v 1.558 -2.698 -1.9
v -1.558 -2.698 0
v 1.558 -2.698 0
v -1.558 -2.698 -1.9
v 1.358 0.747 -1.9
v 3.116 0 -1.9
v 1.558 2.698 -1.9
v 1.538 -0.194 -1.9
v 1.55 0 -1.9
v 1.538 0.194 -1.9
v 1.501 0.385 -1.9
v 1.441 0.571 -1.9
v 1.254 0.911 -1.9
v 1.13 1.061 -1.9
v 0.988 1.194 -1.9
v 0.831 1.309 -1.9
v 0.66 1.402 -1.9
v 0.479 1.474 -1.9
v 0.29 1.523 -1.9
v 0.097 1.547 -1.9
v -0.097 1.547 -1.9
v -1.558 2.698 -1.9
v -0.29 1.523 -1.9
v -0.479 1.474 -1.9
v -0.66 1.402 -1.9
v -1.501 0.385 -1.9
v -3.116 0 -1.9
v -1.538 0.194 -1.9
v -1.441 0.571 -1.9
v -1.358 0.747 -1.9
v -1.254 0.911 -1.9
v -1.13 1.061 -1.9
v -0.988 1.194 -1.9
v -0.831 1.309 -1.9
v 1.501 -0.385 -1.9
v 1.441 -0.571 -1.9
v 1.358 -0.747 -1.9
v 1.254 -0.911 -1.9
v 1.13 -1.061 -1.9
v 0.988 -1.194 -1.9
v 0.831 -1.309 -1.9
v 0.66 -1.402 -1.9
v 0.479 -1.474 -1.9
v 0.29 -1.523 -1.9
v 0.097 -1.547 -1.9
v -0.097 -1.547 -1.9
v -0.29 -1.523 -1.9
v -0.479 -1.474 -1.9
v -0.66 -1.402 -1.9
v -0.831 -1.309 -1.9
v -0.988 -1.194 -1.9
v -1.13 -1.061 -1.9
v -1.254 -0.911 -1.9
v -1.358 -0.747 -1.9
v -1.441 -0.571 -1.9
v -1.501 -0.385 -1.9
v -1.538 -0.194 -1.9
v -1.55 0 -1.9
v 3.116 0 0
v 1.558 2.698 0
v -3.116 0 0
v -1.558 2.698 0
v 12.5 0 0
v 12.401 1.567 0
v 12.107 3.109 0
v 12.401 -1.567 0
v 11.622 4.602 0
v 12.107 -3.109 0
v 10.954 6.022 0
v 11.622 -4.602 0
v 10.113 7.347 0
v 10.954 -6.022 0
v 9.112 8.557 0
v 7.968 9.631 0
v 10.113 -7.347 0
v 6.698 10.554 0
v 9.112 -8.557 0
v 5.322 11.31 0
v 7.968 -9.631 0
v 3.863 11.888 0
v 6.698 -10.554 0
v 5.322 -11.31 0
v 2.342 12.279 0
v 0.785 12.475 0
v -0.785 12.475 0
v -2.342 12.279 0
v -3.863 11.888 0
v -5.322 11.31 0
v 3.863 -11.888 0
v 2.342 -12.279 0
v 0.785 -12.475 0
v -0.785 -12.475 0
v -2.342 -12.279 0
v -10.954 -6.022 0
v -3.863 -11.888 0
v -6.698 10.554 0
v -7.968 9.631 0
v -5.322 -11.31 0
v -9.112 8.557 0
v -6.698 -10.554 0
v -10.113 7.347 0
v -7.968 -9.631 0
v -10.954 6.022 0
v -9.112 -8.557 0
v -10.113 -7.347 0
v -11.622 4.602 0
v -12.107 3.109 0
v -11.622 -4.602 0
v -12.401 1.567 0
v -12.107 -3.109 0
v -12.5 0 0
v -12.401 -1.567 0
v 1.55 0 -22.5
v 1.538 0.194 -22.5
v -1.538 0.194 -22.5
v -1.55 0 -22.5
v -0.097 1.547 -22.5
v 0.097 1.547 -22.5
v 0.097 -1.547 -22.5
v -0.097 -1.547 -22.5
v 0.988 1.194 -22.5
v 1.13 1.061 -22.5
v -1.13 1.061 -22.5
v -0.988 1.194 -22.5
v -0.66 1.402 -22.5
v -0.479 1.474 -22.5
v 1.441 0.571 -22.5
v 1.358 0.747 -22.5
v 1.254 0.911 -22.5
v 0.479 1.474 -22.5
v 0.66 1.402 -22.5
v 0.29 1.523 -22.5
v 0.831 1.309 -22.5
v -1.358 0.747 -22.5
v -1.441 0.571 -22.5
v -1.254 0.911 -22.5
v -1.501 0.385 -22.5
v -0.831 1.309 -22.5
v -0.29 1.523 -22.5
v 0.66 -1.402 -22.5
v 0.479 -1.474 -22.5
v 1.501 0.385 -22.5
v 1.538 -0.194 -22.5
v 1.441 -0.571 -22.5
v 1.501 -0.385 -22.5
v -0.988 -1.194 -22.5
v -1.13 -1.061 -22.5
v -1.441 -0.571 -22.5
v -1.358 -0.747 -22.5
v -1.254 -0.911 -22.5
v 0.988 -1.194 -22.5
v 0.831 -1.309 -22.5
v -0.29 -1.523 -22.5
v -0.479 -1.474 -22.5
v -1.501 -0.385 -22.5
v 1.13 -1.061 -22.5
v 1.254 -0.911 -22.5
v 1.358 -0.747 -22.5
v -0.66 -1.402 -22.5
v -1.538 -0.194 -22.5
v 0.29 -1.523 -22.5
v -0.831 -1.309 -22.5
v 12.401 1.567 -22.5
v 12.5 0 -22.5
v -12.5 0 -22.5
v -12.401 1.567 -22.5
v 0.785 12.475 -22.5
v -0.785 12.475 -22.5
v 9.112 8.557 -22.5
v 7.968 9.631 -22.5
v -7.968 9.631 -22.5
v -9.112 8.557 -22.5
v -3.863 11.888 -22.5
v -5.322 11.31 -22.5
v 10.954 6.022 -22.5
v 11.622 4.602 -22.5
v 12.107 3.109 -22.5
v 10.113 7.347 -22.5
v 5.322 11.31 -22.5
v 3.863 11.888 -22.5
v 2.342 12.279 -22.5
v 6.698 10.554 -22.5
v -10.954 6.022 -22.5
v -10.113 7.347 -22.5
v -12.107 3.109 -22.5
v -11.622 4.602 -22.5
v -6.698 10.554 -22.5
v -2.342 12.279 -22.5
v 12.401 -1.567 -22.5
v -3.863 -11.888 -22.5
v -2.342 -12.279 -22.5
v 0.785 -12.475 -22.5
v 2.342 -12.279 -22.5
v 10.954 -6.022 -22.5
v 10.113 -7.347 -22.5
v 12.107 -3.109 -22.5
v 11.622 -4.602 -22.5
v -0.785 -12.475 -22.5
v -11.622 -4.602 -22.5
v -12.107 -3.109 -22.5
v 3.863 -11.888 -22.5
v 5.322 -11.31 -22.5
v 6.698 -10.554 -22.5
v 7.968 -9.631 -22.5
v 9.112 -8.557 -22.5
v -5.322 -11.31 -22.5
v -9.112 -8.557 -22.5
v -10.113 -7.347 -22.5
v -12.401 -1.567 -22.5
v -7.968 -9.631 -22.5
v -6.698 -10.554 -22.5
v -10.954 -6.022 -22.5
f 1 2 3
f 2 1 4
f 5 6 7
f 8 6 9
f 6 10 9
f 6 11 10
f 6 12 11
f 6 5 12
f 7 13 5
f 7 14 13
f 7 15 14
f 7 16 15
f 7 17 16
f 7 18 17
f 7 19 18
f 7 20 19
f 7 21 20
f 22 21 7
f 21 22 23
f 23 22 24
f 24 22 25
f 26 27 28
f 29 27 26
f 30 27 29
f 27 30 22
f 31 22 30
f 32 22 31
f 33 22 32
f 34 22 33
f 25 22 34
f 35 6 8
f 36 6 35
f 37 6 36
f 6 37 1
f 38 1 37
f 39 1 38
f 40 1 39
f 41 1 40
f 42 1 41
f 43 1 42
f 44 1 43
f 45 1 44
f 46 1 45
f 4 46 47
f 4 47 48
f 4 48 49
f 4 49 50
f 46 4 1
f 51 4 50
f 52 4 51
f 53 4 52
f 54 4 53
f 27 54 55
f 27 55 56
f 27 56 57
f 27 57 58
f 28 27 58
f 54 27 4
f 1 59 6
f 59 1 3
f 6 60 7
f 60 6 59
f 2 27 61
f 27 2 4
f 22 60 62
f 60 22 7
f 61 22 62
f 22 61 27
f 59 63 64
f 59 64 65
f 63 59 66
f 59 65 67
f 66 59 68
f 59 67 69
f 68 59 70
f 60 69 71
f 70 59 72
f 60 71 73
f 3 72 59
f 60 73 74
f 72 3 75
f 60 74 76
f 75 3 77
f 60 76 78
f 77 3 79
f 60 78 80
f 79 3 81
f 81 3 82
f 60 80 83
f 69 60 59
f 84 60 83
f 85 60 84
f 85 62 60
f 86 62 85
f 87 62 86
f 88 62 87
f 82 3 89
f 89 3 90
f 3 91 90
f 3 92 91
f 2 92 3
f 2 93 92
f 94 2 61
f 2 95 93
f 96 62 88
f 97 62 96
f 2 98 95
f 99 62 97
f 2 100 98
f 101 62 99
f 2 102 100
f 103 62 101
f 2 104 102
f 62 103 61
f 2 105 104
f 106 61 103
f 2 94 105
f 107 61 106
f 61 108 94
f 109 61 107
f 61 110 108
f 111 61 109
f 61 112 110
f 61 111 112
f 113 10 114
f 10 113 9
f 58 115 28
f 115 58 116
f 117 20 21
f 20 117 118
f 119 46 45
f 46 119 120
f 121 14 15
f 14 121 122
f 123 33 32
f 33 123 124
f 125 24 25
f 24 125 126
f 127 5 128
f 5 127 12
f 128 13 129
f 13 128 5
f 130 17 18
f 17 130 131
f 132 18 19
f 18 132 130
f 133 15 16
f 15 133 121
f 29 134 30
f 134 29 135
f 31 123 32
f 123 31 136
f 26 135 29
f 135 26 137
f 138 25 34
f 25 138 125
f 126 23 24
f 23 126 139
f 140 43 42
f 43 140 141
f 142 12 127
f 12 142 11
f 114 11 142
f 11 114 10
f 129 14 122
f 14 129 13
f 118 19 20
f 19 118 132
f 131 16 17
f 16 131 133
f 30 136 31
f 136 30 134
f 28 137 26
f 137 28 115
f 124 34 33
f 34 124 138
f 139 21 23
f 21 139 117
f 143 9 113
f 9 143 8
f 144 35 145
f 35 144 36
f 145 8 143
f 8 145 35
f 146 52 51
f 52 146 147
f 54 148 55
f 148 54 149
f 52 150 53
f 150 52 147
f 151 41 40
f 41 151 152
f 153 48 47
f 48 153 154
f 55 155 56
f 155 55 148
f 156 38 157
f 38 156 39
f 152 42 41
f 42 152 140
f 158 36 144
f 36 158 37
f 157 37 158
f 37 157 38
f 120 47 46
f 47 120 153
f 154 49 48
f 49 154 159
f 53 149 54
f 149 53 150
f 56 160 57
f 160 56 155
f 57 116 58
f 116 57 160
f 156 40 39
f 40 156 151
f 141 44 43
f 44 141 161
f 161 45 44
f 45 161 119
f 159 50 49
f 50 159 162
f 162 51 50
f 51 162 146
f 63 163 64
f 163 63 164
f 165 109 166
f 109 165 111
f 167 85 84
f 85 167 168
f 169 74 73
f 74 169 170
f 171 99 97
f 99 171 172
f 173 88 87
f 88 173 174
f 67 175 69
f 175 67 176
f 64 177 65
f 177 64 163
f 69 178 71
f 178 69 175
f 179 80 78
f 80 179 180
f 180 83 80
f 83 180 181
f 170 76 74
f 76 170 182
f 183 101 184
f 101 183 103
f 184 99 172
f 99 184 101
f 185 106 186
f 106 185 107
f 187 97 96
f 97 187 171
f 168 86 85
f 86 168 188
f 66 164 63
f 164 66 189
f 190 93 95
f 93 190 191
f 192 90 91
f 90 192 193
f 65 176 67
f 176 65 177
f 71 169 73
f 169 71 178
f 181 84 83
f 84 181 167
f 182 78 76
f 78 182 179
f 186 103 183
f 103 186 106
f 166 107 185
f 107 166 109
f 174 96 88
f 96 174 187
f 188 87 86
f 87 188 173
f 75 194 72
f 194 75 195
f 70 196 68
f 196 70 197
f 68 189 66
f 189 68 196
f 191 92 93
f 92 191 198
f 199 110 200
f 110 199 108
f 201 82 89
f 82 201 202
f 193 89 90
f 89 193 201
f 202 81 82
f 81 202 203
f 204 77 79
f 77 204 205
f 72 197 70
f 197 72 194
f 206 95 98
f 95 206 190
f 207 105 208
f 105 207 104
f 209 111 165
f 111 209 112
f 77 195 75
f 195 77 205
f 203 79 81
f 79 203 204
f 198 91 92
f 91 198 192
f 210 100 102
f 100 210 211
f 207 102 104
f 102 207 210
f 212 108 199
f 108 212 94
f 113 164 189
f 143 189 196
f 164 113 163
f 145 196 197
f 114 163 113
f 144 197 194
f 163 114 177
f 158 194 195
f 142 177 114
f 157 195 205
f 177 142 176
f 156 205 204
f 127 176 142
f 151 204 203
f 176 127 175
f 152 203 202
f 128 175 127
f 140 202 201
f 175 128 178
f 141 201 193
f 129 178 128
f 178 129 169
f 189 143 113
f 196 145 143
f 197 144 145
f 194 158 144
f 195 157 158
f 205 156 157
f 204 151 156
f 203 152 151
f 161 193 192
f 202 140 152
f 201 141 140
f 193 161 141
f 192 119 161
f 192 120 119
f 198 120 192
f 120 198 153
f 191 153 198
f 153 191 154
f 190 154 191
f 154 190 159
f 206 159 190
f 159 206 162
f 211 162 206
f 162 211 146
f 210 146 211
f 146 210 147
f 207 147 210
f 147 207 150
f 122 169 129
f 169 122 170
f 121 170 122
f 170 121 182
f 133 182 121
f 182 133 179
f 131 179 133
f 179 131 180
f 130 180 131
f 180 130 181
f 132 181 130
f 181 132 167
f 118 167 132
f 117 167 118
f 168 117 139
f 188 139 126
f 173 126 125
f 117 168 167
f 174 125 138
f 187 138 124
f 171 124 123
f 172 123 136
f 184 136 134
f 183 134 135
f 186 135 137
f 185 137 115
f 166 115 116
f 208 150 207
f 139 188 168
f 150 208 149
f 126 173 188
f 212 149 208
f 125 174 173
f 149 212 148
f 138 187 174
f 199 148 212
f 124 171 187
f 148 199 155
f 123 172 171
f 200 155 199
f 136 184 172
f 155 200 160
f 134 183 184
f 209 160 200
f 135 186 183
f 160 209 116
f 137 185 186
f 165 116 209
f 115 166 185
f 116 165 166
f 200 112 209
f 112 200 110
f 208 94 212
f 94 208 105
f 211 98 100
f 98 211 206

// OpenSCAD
$fn = 50;


difference() {
	union() {
		translate(v = [0, 0, -22.5000000000]) {
			cylinder(h = 22.5000000000, r = 12.5000000000);
		}
	}
	union() {
		translate(v = [0, 0, 0]) {
			rotate(a = [0, 0, 0]) {
				difference() {
					union() {
						translate(v = [0, 0, -1.9000000000]) {
							linear_extrude(height = 1.9000000000) {
								polygon(points = [[3.1158000000, 0.0000000000], [1.5579000000, 2.6983619531], [-1.5579000000, 2.6983619531], [-3.1158000000, 0.0000000000], [-1.5579000000, -2.6983619531], [1.5579000000, -2.6983619531]]);
							}
						}
					}
					union();
				}
			}
		}
		#translate(v = [0, 0, -100.0000000000]) {
			cylinder(h = 200, r = 1.5500000000);
		}
	}
}
